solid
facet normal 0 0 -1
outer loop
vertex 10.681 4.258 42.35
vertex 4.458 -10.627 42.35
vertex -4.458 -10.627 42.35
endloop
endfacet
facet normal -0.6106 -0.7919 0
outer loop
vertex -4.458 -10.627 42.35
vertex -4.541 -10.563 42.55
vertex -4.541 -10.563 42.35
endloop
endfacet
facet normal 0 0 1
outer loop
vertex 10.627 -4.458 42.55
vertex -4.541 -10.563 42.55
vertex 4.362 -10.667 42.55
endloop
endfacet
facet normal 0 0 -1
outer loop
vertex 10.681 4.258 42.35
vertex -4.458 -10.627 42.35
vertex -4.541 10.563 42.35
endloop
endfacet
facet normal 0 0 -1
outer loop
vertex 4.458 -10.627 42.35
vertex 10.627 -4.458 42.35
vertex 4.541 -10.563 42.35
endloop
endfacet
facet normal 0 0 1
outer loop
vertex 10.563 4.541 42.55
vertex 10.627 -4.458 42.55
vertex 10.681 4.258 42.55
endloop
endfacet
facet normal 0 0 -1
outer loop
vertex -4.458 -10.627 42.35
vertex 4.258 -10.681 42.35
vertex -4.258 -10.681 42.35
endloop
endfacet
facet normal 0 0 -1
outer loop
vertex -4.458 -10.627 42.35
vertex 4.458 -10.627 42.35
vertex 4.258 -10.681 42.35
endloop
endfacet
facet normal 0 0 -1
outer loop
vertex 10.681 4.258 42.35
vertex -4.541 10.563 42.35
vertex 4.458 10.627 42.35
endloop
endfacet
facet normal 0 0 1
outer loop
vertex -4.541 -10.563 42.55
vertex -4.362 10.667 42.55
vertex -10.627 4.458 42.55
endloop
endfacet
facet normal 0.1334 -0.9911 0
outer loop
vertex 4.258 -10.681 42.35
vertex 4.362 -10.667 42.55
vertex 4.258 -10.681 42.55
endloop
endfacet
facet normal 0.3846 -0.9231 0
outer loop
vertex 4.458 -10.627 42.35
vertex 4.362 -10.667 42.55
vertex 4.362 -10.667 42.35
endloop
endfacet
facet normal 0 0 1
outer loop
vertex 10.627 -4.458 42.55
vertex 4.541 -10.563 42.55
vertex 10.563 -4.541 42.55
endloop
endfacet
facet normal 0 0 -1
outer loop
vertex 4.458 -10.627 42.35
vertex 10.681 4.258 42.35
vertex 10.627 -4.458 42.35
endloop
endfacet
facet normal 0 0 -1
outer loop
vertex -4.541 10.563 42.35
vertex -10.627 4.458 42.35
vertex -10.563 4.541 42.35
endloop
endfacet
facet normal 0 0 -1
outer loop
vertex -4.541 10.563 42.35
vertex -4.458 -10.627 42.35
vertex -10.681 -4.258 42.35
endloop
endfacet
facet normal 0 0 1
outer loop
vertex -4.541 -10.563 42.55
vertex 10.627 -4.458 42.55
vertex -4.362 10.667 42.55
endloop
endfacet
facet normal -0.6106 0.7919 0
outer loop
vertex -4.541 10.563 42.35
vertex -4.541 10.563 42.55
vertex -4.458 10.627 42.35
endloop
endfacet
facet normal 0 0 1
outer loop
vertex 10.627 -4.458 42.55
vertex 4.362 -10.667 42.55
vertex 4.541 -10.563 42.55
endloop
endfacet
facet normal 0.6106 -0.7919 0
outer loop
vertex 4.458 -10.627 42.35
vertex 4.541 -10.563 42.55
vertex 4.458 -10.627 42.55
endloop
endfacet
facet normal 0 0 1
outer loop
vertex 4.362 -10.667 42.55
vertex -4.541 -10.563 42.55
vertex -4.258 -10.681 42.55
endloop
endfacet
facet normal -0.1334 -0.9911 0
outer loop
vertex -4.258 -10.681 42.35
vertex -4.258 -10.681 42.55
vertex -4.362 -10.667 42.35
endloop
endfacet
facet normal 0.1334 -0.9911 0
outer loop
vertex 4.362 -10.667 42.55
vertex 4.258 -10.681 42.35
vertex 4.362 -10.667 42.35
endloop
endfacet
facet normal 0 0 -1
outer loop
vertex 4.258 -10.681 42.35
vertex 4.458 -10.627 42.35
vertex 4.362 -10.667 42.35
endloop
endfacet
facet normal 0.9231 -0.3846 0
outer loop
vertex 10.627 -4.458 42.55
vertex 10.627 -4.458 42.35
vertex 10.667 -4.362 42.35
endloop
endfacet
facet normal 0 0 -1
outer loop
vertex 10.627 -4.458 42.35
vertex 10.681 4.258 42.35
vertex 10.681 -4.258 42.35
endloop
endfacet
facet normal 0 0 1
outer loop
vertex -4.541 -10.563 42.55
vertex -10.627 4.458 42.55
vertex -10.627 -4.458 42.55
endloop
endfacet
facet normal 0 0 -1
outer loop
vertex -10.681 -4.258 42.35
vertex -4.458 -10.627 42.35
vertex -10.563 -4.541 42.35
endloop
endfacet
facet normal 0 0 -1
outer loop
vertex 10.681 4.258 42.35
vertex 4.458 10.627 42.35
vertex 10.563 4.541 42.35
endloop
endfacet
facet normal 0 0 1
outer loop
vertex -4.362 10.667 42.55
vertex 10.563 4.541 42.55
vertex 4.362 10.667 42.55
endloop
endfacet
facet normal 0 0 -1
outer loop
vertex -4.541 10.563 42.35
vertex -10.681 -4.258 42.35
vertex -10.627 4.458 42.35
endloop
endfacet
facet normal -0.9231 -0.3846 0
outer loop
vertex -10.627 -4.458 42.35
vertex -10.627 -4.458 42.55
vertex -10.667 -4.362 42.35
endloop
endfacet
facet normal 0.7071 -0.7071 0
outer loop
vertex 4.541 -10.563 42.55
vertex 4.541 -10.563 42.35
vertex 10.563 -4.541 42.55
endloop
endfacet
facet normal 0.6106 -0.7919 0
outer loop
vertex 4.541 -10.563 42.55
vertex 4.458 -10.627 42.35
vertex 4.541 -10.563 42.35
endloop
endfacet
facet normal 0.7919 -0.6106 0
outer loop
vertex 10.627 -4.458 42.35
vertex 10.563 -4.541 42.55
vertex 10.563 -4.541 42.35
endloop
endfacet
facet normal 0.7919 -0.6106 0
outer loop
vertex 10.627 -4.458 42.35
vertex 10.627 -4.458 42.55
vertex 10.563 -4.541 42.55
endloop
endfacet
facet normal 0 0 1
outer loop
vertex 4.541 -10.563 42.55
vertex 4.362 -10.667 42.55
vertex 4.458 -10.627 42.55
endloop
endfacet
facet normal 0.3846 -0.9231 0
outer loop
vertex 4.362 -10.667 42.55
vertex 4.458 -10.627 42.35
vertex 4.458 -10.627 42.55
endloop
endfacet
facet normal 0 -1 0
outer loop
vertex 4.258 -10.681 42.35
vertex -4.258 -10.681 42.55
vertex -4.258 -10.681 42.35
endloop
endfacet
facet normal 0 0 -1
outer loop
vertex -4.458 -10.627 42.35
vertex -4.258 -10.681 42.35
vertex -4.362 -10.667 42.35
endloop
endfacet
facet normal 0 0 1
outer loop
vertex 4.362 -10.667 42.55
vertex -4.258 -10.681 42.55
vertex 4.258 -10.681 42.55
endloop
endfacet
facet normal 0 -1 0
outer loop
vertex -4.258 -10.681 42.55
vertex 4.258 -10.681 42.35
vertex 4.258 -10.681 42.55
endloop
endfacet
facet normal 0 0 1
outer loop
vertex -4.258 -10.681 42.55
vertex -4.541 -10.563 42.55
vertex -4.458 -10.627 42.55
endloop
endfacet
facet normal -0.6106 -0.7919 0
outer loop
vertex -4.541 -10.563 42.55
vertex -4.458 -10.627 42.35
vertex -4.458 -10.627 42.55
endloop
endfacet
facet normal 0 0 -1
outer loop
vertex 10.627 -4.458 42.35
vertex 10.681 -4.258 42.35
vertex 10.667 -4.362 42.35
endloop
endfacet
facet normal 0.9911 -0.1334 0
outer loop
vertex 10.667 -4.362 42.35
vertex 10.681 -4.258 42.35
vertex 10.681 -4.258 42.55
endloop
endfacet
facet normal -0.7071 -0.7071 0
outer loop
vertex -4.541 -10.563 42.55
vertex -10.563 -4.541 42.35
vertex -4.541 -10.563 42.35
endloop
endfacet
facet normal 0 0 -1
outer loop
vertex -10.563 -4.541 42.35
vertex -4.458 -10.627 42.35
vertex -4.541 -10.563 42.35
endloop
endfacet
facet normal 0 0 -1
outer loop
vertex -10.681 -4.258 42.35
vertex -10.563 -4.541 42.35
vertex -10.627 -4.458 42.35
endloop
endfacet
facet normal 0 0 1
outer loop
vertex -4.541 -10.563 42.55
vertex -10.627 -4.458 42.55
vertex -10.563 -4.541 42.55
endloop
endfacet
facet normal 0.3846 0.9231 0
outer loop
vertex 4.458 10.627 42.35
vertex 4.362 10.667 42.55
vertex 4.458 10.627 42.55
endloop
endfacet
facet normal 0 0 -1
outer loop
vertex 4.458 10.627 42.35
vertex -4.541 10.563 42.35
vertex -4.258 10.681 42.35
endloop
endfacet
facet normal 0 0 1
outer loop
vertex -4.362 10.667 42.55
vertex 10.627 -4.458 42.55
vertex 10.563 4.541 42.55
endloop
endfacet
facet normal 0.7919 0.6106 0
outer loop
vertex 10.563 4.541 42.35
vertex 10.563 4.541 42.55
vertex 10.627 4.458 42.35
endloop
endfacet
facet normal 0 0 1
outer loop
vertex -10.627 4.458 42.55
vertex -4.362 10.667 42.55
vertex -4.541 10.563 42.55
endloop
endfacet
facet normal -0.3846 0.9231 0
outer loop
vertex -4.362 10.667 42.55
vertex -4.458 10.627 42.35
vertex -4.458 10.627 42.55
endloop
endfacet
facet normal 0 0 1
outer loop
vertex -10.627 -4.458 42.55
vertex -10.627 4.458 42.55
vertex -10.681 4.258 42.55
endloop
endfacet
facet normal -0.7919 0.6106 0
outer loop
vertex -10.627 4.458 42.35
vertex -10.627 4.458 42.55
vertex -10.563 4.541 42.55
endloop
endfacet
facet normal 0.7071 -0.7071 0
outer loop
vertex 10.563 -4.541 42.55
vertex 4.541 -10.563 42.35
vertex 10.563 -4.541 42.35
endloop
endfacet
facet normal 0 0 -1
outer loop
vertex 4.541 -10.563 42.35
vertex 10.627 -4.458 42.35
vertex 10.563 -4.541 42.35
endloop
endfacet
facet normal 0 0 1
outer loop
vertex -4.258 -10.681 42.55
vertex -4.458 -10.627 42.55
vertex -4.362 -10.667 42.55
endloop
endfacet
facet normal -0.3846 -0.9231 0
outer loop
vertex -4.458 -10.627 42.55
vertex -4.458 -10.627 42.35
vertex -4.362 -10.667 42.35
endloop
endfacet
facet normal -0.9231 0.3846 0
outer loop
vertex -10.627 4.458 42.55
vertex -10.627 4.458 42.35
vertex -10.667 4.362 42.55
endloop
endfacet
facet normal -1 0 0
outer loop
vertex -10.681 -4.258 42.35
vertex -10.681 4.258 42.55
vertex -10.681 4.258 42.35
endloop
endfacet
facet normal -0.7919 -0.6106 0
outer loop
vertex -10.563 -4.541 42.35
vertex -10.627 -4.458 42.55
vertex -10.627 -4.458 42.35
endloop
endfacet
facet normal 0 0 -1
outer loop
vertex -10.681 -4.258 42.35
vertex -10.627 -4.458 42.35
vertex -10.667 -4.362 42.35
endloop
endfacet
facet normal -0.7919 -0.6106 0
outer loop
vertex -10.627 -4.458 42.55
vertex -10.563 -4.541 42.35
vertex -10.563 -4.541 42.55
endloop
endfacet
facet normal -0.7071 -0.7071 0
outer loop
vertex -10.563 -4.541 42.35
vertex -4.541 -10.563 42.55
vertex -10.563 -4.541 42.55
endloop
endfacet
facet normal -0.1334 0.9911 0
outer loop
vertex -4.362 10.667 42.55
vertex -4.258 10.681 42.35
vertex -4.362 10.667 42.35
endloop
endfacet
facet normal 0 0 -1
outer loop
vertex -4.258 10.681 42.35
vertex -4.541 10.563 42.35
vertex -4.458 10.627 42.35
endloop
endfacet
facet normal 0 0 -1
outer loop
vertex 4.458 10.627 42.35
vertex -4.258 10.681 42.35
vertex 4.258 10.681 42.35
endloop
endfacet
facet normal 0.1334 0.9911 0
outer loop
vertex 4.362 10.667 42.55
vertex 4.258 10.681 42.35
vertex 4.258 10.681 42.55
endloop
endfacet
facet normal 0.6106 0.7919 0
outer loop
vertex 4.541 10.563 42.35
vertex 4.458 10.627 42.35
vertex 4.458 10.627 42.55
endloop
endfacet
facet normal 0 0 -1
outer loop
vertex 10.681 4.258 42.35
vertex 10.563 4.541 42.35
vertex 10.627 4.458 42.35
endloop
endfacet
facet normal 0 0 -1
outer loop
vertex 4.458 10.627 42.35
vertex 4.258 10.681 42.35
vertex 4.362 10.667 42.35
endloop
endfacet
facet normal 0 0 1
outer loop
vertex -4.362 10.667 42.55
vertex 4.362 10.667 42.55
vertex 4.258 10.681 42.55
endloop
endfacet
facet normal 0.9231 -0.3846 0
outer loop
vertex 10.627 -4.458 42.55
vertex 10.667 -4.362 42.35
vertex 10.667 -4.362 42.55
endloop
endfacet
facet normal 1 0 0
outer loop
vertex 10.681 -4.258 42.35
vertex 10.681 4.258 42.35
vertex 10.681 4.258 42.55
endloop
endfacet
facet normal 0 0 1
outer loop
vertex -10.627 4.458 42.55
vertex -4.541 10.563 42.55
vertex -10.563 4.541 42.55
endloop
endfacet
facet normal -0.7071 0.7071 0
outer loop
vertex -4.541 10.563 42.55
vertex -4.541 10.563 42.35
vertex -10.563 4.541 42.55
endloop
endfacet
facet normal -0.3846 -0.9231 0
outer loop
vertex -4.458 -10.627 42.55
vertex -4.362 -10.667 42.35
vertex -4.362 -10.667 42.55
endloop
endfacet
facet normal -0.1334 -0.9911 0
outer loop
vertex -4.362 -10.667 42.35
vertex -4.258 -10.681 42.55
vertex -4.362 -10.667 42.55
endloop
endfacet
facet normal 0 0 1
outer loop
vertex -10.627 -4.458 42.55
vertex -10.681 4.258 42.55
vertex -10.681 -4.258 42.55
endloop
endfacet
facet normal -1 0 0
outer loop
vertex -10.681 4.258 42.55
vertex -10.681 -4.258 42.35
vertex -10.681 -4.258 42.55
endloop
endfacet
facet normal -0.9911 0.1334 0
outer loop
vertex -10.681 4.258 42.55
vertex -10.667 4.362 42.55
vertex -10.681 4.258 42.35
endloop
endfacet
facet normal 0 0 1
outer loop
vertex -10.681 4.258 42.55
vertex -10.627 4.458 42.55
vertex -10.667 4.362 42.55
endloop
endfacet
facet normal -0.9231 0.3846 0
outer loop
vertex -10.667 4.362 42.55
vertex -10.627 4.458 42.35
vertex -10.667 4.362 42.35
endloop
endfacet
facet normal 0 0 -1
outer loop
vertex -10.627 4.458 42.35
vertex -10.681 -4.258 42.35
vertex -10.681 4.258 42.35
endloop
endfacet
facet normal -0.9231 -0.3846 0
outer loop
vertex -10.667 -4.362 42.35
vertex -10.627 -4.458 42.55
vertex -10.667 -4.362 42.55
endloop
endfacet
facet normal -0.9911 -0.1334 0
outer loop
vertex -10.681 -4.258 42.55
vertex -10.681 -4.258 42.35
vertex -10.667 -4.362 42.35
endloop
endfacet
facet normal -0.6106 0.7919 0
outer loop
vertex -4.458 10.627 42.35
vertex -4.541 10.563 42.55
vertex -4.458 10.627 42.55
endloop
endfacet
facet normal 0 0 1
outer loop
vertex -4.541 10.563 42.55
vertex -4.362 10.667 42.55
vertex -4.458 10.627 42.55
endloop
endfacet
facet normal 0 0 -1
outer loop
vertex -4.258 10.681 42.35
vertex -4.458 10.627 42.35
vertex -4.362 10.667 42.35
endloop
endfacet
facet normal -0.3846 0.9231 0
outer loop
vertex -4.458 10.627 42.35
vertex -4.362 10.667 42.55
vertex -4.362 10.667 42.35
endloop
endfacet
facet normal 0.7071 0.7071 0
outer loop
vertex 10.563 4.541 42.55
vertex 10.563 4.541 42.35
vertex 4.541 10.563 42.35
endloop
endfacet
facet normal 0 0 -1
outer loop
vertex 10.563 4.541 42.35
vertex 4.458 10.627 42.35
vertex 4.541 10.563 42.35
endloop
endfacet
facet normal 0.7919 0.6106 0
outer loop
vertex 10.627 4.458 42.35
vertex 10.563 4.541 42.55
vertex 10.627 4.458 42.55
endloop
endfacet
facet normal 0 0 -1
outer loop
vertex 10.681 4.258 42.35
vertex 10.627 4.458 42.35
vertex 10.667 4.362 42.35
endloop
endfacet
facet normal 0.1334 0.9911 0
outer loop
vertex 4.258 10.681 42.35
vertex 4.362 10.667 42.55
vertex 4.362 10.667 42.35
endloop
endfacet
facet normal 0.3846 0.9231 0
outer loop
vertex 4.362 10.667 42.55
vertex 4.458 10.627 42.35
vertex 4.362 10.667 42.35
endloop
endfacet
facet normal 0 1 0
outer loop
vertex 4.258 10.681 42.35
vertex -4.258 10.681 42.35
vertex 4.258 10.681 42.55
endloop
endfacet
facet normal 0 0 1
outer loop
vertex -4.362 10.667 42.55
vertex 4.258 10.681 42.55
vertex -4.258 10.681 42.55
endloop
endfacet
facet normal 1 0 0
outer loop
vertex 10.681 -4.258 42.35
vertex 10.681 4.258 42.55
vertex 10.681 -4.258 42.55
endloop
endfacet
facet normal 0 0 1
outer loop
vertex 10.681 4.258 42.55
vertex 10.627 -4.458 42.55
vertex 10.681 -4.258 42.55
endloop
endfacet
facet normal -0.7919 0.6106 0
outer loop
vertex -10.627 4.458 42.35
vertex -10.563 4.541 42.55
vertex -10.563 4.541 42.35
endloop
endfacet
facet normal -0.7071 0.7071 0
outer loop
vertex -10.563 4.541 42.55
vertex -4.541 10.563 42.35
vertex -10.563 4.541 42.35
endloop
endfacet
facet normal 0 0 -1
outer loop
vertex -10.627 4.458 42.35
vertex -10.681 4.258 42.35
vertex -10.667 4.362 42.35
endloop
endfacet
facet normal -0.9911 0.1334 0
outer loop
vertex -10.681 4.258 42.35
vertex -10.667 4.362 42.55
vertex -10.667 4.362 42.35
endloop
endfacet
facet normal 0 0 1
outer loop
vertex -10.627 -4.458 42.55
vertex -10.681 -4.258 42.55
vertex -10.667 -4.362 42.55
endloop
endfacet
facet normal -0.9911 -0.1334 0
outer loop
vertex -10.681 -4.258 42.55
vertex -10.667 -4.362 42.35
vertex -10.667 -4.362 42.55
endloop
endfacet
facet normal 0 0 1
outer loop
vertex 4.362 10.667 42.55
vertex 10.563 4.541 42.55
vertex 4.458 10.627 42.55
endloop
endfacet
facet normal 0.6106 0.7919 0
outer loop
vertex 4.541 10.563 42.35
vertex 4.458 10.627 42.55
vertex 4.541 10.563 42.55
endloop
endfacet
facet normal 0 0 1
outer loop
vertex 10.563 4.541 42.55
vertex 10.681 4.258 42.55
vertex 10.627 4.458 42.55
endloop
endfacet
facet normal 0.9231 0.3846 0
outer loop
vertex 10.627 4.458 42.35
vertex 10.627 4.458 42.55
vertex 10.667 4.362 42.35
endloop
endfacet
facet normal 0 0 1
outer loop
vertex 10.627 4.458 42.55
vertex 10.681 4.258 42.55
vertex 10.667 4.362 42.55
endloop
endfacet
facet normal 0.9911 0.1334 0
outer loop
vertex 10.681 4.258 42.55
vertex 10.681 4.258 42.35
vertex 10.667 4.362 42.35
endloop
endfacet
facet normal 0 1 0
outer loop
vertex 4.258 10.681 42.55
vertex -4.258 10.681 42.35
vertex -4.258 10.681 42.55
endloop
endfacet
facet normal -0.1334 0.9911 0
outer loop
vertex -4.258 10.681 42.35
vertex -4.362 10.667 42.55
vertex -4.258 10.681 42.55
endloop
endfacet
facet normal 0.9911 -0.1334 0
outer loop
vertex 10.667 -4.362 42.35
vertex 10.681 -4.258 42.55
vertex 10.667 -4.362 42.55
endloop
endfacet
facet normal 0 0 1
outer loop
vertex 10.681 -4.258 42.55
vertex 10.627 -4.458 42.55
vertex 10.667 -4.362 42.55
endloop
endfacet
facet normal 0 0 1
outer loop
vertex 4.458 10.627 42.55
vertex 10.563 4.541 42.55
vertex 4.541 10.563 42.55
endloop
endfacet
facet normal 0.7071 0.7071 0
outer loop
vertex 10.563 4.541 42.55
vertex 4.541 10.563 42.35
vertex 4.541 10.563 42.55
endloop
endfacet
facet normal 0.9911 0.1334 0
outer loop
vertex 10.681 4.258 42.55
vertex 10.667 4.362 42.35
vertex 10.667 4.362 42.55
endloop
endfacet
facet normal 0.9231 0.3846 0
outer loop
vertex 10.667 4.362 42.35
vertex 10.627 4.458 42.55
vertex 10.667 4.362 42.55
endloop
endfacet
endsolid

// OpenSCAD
// file: def.scad
round_radius = 0.6;
sticker_margin = 1.2;
sticker_round_radius = 0.4;
cube_size = 60;
disk_height = 12.5;
disk_radius = cube_size / 2;
base_size = cube_size / 2 / sqrt(10 + 7 * sqrt(2));
cut1_dis = base_size * (1 + sqrt(2) / 2);
cut2_dis = cube_size / 2;
inf = cube_size * 10;

module _cube() {
    cube([cube_size - round_radius * 2, cube_size - round_radius * 2, cube_size - round_radius * 2], center = true);
}

module _disk() {
    translate([0, 0, cube_size / 2 + disk_height / 2])
        cylinder(r = disk_radius - round_radius, h = disk_height - round_radius * 2, center = true, $fn = 96);
}

module _int_cut1() {
    translate([-inf, -inf, cut1_dis + round_radius])
        cube([inf * 2, inf * 2, inf]);
}

module _dif_cut1() {
    translate([-inf, -inf, cut1_dis - round_radius])
        cube([inf * 2, inf * 2, inf]);
}

module _sticker_int_cut1() {
    translate([-inf, -inf, cut1_dis + sticker_margin])
        cube([inf * 2, inf * 2, inf]);
}

module _sticker_dif_cut1() {
    translate([-inf, -inf, cut1_dis - sticker_margin])
        cube([inf * 2, inf * 2, inf]);
}

module _int_cut2() {
    translate([-inf, -inf, cut2_dis + round_radius])
        cube([inf * 2, inf * 2, inf]);
}

module _dif_cut2() {
    translate([-inf, -inf, cut2_dis - round_radius])
        cube([inf * 2, inf * 2, inf]);
}

module _sticker_int_cut2() {
    translate([-inf, -inf, cut2_dis + sticker_margin])
        cube([inf * 2, inf * 2, inf]);
}

module _sticker_dif_cut2() {
    translate([-inf, -inf, cut2_dis - sticker_margin])
        cube([inf * 2, inf * 2, inf]);
}

module _sticker_cube() {
    translate([-cube_size / 2 + sticker_margin, -cube_size / 2 + sticker_margin, cube_size / 2 - 0.05])
        cube([cube_size - sticker_margin * 2, cube_size - sticker_margin * 2, 0.1]);
}

module _sticker_disk() {
    translate([0, 0, cube_size / 2 + disk_height - 0.05])
        cylinder(r = disk_radius - sticker_margin, h = 0.1, center = true, $fn = 96);
}
// main file
include <def.scad>

module sticker_1() {
    minkowski() {
        difference() {
            _sticker_disk();
            for (deg = [0 : 45 : 315])
                rotate([90, 0, deg])
                    _sticker_dif_cut1();
        }
        cylinder(r = sticker_round_radius, h = 0.1, center = true, $fn = 24);
    }
}

sticker_1();
